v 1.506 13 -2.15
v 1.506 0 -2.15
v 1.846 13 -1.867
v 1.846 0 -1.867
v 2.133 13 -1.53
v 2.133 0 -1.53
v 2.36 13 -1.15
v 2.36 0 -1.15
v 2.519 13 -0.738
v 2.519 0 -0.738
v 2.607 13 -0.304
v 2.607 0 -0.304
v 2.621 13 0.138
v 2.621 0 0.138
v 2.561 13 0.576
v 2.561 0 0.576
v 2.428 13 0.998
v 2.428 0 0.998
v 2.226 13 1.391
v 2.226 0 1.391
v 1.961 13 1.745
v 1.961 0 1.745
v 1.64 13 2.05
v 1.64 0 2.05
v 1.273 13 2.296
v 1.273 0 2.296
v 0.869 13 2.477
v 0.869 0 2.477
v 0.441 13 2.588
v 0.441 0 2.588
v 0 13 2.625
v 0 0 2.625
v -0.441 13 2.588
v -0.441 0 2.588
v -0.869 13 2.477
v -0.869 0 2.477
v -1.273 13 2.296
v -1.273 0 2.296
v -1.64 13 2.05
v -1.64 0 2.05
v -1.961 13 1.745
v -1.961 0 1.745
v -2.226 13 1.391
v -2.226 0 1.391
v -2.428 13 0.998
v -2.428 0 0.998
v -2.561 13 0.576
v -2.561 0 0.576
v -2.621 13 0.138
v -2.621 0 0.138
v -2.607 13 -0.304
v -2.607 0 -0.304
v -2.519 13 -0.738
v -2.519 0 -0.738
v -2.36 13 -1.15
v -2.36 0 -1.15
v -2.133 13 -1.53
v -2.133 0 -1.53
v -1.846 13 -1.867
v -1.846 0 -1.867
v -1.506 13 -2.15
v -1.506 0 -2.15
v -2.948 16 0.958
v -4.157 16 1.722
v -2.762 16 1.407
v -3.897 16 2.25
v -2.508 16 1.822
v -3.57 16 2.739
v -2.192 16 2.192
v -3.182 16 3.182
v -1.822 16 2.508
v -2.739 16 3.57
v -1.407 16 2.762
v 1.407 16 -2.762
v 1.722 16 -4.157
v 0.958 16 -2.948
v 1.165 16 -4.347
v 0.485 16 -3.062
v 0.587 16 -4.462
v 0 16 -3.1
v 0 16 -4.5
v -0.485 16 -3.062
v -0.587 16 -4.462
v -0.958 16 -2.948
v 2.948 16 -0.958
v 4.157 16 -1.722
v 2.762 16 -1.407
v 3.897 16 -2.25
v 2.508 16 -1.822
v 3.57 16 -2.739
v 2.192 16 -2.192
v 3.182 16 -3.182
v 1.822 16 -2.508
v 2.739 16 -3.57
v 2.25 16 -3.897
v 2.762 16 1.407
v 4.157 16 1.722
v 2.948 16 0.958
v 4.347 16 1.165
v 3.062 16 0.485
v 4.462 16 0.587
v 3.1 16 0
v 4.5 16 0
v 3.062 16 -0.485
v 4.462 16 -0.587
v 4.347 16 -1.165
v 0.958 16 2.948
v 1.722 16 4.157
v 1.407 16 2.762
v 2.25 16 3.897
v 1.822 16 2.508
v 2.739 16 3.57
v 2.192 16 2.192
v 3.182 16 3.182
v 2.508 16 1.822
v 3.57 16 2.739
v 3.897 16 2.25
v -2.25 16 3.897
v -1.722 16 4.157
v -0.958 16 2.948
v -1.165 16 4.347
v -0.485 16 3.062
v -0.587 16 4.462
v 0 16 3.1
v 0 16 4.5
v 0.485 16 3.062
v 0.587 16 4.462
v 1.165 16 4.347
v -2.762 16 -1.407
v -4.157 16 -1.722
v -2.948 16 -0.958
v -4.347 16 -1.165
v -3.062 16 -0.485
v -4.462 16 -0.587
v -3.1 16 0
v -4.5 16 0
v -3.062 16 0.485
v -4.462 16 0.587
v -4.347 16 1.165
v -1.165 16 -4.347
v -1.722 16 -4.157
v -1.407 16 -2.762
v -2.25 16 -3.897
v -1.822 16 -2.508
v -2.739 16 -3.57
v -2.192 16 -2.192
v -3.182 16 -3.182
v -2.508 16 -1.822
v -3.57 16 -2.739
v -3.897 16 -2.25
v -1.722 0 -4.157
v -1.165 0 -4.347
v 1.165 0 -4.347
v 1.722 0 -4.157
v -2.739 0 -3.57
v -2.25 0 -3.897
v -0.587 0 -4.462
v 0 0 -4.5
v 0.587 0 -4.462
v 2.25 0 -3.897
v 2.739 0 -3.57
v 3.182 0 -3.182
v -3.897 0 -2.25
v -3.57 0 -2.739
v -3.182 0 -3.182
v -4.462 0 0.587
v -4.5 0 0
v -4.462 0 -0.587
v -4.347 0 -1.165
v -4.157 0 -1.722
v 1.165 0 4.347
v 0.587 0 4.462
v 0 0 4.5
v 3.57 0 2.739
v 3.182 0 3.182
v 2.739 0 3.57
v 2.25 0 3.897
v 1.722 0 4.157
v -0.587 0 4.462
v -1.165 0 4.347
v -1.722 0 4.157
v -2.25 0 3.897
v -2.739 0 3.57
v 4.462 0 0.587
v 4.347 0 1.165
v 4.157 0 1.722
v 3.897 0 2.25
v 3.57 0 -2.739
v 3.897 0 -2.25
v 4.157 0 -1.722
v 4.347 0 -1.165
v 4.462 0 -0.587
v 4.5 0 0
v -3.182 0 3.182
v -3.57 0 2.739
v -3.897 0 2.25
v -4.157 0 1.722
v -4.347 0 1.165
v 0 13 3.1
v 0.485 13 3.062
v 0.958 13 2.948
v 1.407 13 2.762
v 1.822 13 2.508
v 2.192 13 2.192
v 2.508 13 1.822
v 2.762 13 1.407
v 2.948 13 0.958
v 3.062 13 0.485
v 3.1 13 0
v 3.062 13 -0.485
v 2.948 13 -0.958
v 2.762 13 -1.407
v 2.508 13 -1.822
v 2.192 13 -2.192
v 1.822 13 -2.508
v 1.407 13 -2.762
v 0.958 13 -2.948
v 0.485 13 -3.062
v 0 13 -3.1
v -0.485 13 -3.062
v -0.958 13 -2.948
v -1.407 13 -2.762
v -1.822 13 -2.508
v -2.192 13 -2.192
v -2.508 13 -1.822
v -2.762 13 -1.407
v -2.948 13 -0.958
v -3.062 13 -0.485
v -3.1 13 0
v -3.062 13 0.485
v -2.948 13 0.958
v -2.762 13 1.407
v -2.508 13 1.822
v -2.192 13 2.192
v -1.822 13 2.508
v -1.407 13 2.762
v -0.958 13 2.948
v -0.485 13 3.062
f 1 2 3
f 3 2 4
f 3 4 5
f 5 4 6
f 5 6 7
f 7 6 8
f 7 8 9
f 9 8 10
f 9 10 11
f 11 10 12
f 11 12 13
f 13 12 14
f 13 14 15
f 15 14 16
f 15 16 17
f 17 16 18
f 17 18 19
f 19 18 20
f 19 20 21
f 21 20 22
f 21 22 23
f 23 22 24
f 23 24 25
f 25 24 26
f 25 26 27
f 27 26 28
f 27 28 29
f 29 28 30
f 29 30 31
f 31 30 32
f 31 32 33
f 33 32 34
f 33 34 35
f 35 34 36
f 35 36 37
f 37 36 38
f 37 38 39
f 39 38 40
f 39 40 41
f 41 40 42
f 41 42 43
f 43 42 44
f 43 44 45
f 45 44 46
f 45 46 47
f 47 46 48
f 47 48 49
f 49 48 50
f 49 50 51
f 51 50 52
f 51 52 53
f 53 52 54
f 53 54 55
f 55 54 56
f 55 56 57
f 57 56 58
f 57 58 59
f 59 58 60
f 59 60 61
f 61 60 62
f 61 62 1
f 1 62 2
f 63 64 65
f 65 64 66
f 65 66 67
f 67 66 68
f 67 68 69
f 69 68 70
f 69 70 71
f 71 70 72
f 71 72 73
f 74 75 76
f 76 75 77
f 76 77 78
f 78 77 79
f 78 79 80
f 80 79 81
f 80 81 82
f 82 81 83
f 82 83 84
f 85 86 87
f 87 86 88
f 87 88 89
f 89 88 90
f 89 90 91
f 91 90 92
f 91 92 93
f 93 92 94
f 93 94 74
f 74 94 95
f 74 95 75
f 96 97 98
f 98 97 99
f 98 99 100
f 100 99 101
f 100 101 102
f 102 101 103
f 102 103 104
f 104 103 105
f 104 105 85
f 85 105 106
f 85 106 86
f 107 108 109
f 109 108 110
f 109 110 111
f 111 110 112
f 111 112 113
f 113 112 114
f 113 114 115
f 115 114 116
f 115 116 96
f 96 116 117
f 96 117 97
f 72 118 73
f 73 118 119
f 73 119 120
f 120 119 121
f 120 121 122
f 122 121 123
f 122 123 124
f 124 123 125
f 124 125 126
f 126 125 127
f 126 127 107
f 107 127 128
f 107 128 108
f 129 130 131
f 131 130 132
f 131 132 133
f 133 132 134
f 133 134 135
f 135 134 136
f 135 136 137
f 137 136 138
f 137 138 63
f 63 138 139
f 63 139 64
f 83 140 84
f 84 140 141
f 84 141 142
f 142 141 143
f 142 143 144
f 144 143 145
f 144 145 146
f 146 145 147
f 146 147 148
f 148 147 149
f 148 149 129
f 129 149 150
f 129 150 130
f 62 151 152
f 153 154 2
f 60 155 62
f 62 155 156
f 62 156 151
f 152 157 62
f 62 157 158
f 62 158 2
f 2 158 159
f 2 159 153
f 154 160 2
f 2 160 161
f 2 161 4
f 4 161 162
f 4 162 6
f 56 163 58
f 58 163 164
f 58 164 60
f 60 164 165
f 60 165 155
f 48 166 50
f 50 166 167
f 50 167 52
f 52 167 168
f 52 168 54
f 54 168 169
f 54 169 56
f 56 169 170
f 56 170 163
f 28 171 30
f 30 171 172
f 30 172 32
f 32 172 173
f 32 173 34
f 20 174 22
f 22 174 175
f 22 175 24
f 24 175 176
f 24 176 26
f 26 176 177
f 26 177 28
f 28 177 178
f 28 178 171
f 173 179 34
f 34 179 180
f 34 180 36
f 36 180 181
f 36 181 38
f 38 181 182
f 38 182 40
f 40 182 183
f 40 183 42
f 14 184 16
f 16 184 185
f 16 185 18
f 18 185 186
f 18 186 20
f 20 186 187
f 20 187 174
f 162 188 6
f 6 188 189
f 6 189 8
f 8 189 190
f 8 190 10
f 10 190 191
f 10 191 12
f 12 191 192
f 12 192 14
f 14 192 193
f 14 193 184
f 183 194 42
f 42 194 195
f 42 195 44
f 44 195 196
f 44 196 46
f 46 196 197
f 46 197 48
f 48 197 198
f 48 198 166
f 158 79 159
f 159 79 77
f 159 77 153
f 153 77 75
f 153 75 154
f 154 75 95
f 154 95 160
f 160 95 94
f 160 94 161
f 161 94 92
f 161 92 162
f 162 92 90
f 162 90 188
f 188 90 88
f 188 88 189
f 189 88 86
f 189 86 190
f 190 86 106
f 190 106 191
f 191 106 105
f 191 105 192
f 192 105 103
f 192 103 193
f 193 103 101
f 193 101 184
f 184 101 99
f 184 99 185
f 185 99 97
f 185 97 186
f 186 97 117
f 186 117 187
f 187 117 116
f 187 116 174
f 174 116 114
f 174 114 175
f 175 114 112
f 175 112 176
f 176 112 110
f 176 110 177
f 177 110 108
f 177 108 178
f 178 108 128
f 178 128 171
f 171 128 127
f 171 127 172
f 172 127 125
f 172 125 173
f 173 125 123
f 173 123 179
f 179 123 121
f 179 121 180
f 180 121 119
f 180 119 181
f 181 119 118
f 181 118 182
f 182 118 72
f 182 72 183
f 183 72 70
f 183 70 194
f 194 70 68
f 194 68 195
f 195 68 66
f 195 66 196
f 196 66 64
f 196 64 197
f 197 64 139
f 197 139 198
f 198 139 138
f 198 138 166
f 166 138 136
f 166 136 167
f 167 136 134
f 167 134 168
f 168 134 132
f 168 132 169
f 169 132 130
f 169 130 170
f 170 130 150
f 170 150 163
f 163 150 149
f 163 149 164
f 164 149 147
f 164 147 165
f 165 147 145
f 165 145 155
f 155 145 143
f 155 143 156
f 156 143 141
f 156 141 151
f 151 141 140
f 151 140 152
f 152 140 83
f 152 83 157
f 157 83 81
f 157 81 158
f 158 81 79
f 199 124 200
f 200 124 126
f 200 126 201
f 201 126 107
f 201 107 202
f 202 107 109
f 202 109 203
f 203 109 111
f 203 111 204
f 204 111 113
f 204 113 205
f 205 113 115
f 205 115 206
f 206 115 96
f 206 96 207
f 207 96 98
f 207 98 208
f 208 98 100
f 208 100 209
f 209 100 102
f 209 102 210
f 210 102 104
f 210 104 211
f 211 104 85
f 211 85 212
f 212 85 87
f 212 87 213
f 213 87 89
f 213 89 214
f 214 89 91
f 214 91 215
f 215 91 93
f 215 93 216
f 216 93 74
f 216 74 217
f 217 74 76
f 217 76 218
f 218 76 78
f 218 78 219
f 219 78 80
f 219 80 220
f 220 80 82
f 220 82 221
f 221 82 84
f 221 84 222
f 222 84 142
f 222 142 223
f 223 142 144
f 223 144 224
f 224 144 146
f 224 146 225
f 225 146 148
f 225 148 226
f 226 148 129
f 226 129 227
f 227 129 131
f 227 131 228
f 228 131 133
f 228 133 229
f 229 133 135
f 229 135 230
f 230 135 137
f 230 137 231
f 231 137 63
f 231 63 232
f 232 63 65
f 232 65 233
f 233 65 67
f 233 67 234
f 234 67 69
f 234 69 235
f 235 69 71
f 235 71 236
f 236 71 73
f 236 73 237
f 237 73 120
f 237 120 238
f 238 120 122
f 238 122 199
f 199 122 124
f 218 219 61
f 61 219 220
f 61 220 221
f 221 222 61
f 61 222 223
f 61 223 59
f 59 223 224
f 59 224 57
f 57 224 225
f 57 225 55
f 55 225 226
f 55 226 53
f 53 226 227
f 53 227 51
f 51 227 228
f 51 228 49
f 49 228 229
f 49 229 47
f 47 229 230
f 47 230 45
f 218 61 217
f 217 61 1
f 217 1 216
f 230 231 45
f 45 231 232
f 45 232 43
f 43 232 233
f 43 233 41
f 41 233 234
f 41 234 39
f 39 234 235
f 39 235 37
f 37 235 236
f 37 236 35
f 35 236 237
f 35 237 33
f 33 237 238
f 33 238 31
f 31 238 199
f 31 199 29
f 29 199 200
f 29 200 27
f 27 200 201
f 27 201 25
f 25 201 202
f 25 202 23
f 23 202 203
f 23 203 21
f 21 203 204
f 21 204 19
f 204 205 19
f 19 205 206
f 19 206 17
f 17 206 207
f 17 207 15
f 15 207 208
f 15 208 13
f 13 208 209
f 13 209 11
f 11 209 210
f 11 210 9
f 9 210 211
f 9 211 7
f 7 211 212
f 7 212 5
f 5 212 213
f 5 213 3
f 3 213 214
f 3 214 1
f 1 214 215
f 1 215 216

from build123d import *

# Parameters (mm, degrees)
SKETCH1_R           = 4.5
BOSS_EXTRUDE1_DEPTH = 16
SKETCH2_R           = 3.1
CUT_EXTRUDE1_DEPTH  = 3


with BuildPart() as part:
    # Sketch1 → Boss-Extrude1 (new body)
    with BuildSketch(Plane(origin=(0, 0, 0), x_dir=(1, 0, 0), z_dir=(0, 1, 0))):
        with Locations(Location((0, 0, 0), (0, 0, 270))):
            Circle(SKETCH1_R)
        with BuildLine():
            Line((1.506029548, 2.15), (-1.506029548, 2.15))
            ThreePointArc((-1.506029548, 2.15), (0, -2.625), (1.506029548, 2.15))
        make_face(mode=Mode.SUBTRACT)
    extrude(amount=BOSS_EXTRUDE1_DEPTH)

    # Sketch2 → Cut-Extrude1 (cut)
    with BuildSketch(Plane(origin=(0, 16, 0), x_dir=(1, 0, 0), z_dir=(0, 1, 0))):
        with Locations(Location((0, 0, 0), (0, 0, 270))):
            Circle(SKETCH2_R)
    extrude(amount=-CUT_EXTRUDE1_DEPTH, mode=Mode.SUBTRACT)


solid = part.part
